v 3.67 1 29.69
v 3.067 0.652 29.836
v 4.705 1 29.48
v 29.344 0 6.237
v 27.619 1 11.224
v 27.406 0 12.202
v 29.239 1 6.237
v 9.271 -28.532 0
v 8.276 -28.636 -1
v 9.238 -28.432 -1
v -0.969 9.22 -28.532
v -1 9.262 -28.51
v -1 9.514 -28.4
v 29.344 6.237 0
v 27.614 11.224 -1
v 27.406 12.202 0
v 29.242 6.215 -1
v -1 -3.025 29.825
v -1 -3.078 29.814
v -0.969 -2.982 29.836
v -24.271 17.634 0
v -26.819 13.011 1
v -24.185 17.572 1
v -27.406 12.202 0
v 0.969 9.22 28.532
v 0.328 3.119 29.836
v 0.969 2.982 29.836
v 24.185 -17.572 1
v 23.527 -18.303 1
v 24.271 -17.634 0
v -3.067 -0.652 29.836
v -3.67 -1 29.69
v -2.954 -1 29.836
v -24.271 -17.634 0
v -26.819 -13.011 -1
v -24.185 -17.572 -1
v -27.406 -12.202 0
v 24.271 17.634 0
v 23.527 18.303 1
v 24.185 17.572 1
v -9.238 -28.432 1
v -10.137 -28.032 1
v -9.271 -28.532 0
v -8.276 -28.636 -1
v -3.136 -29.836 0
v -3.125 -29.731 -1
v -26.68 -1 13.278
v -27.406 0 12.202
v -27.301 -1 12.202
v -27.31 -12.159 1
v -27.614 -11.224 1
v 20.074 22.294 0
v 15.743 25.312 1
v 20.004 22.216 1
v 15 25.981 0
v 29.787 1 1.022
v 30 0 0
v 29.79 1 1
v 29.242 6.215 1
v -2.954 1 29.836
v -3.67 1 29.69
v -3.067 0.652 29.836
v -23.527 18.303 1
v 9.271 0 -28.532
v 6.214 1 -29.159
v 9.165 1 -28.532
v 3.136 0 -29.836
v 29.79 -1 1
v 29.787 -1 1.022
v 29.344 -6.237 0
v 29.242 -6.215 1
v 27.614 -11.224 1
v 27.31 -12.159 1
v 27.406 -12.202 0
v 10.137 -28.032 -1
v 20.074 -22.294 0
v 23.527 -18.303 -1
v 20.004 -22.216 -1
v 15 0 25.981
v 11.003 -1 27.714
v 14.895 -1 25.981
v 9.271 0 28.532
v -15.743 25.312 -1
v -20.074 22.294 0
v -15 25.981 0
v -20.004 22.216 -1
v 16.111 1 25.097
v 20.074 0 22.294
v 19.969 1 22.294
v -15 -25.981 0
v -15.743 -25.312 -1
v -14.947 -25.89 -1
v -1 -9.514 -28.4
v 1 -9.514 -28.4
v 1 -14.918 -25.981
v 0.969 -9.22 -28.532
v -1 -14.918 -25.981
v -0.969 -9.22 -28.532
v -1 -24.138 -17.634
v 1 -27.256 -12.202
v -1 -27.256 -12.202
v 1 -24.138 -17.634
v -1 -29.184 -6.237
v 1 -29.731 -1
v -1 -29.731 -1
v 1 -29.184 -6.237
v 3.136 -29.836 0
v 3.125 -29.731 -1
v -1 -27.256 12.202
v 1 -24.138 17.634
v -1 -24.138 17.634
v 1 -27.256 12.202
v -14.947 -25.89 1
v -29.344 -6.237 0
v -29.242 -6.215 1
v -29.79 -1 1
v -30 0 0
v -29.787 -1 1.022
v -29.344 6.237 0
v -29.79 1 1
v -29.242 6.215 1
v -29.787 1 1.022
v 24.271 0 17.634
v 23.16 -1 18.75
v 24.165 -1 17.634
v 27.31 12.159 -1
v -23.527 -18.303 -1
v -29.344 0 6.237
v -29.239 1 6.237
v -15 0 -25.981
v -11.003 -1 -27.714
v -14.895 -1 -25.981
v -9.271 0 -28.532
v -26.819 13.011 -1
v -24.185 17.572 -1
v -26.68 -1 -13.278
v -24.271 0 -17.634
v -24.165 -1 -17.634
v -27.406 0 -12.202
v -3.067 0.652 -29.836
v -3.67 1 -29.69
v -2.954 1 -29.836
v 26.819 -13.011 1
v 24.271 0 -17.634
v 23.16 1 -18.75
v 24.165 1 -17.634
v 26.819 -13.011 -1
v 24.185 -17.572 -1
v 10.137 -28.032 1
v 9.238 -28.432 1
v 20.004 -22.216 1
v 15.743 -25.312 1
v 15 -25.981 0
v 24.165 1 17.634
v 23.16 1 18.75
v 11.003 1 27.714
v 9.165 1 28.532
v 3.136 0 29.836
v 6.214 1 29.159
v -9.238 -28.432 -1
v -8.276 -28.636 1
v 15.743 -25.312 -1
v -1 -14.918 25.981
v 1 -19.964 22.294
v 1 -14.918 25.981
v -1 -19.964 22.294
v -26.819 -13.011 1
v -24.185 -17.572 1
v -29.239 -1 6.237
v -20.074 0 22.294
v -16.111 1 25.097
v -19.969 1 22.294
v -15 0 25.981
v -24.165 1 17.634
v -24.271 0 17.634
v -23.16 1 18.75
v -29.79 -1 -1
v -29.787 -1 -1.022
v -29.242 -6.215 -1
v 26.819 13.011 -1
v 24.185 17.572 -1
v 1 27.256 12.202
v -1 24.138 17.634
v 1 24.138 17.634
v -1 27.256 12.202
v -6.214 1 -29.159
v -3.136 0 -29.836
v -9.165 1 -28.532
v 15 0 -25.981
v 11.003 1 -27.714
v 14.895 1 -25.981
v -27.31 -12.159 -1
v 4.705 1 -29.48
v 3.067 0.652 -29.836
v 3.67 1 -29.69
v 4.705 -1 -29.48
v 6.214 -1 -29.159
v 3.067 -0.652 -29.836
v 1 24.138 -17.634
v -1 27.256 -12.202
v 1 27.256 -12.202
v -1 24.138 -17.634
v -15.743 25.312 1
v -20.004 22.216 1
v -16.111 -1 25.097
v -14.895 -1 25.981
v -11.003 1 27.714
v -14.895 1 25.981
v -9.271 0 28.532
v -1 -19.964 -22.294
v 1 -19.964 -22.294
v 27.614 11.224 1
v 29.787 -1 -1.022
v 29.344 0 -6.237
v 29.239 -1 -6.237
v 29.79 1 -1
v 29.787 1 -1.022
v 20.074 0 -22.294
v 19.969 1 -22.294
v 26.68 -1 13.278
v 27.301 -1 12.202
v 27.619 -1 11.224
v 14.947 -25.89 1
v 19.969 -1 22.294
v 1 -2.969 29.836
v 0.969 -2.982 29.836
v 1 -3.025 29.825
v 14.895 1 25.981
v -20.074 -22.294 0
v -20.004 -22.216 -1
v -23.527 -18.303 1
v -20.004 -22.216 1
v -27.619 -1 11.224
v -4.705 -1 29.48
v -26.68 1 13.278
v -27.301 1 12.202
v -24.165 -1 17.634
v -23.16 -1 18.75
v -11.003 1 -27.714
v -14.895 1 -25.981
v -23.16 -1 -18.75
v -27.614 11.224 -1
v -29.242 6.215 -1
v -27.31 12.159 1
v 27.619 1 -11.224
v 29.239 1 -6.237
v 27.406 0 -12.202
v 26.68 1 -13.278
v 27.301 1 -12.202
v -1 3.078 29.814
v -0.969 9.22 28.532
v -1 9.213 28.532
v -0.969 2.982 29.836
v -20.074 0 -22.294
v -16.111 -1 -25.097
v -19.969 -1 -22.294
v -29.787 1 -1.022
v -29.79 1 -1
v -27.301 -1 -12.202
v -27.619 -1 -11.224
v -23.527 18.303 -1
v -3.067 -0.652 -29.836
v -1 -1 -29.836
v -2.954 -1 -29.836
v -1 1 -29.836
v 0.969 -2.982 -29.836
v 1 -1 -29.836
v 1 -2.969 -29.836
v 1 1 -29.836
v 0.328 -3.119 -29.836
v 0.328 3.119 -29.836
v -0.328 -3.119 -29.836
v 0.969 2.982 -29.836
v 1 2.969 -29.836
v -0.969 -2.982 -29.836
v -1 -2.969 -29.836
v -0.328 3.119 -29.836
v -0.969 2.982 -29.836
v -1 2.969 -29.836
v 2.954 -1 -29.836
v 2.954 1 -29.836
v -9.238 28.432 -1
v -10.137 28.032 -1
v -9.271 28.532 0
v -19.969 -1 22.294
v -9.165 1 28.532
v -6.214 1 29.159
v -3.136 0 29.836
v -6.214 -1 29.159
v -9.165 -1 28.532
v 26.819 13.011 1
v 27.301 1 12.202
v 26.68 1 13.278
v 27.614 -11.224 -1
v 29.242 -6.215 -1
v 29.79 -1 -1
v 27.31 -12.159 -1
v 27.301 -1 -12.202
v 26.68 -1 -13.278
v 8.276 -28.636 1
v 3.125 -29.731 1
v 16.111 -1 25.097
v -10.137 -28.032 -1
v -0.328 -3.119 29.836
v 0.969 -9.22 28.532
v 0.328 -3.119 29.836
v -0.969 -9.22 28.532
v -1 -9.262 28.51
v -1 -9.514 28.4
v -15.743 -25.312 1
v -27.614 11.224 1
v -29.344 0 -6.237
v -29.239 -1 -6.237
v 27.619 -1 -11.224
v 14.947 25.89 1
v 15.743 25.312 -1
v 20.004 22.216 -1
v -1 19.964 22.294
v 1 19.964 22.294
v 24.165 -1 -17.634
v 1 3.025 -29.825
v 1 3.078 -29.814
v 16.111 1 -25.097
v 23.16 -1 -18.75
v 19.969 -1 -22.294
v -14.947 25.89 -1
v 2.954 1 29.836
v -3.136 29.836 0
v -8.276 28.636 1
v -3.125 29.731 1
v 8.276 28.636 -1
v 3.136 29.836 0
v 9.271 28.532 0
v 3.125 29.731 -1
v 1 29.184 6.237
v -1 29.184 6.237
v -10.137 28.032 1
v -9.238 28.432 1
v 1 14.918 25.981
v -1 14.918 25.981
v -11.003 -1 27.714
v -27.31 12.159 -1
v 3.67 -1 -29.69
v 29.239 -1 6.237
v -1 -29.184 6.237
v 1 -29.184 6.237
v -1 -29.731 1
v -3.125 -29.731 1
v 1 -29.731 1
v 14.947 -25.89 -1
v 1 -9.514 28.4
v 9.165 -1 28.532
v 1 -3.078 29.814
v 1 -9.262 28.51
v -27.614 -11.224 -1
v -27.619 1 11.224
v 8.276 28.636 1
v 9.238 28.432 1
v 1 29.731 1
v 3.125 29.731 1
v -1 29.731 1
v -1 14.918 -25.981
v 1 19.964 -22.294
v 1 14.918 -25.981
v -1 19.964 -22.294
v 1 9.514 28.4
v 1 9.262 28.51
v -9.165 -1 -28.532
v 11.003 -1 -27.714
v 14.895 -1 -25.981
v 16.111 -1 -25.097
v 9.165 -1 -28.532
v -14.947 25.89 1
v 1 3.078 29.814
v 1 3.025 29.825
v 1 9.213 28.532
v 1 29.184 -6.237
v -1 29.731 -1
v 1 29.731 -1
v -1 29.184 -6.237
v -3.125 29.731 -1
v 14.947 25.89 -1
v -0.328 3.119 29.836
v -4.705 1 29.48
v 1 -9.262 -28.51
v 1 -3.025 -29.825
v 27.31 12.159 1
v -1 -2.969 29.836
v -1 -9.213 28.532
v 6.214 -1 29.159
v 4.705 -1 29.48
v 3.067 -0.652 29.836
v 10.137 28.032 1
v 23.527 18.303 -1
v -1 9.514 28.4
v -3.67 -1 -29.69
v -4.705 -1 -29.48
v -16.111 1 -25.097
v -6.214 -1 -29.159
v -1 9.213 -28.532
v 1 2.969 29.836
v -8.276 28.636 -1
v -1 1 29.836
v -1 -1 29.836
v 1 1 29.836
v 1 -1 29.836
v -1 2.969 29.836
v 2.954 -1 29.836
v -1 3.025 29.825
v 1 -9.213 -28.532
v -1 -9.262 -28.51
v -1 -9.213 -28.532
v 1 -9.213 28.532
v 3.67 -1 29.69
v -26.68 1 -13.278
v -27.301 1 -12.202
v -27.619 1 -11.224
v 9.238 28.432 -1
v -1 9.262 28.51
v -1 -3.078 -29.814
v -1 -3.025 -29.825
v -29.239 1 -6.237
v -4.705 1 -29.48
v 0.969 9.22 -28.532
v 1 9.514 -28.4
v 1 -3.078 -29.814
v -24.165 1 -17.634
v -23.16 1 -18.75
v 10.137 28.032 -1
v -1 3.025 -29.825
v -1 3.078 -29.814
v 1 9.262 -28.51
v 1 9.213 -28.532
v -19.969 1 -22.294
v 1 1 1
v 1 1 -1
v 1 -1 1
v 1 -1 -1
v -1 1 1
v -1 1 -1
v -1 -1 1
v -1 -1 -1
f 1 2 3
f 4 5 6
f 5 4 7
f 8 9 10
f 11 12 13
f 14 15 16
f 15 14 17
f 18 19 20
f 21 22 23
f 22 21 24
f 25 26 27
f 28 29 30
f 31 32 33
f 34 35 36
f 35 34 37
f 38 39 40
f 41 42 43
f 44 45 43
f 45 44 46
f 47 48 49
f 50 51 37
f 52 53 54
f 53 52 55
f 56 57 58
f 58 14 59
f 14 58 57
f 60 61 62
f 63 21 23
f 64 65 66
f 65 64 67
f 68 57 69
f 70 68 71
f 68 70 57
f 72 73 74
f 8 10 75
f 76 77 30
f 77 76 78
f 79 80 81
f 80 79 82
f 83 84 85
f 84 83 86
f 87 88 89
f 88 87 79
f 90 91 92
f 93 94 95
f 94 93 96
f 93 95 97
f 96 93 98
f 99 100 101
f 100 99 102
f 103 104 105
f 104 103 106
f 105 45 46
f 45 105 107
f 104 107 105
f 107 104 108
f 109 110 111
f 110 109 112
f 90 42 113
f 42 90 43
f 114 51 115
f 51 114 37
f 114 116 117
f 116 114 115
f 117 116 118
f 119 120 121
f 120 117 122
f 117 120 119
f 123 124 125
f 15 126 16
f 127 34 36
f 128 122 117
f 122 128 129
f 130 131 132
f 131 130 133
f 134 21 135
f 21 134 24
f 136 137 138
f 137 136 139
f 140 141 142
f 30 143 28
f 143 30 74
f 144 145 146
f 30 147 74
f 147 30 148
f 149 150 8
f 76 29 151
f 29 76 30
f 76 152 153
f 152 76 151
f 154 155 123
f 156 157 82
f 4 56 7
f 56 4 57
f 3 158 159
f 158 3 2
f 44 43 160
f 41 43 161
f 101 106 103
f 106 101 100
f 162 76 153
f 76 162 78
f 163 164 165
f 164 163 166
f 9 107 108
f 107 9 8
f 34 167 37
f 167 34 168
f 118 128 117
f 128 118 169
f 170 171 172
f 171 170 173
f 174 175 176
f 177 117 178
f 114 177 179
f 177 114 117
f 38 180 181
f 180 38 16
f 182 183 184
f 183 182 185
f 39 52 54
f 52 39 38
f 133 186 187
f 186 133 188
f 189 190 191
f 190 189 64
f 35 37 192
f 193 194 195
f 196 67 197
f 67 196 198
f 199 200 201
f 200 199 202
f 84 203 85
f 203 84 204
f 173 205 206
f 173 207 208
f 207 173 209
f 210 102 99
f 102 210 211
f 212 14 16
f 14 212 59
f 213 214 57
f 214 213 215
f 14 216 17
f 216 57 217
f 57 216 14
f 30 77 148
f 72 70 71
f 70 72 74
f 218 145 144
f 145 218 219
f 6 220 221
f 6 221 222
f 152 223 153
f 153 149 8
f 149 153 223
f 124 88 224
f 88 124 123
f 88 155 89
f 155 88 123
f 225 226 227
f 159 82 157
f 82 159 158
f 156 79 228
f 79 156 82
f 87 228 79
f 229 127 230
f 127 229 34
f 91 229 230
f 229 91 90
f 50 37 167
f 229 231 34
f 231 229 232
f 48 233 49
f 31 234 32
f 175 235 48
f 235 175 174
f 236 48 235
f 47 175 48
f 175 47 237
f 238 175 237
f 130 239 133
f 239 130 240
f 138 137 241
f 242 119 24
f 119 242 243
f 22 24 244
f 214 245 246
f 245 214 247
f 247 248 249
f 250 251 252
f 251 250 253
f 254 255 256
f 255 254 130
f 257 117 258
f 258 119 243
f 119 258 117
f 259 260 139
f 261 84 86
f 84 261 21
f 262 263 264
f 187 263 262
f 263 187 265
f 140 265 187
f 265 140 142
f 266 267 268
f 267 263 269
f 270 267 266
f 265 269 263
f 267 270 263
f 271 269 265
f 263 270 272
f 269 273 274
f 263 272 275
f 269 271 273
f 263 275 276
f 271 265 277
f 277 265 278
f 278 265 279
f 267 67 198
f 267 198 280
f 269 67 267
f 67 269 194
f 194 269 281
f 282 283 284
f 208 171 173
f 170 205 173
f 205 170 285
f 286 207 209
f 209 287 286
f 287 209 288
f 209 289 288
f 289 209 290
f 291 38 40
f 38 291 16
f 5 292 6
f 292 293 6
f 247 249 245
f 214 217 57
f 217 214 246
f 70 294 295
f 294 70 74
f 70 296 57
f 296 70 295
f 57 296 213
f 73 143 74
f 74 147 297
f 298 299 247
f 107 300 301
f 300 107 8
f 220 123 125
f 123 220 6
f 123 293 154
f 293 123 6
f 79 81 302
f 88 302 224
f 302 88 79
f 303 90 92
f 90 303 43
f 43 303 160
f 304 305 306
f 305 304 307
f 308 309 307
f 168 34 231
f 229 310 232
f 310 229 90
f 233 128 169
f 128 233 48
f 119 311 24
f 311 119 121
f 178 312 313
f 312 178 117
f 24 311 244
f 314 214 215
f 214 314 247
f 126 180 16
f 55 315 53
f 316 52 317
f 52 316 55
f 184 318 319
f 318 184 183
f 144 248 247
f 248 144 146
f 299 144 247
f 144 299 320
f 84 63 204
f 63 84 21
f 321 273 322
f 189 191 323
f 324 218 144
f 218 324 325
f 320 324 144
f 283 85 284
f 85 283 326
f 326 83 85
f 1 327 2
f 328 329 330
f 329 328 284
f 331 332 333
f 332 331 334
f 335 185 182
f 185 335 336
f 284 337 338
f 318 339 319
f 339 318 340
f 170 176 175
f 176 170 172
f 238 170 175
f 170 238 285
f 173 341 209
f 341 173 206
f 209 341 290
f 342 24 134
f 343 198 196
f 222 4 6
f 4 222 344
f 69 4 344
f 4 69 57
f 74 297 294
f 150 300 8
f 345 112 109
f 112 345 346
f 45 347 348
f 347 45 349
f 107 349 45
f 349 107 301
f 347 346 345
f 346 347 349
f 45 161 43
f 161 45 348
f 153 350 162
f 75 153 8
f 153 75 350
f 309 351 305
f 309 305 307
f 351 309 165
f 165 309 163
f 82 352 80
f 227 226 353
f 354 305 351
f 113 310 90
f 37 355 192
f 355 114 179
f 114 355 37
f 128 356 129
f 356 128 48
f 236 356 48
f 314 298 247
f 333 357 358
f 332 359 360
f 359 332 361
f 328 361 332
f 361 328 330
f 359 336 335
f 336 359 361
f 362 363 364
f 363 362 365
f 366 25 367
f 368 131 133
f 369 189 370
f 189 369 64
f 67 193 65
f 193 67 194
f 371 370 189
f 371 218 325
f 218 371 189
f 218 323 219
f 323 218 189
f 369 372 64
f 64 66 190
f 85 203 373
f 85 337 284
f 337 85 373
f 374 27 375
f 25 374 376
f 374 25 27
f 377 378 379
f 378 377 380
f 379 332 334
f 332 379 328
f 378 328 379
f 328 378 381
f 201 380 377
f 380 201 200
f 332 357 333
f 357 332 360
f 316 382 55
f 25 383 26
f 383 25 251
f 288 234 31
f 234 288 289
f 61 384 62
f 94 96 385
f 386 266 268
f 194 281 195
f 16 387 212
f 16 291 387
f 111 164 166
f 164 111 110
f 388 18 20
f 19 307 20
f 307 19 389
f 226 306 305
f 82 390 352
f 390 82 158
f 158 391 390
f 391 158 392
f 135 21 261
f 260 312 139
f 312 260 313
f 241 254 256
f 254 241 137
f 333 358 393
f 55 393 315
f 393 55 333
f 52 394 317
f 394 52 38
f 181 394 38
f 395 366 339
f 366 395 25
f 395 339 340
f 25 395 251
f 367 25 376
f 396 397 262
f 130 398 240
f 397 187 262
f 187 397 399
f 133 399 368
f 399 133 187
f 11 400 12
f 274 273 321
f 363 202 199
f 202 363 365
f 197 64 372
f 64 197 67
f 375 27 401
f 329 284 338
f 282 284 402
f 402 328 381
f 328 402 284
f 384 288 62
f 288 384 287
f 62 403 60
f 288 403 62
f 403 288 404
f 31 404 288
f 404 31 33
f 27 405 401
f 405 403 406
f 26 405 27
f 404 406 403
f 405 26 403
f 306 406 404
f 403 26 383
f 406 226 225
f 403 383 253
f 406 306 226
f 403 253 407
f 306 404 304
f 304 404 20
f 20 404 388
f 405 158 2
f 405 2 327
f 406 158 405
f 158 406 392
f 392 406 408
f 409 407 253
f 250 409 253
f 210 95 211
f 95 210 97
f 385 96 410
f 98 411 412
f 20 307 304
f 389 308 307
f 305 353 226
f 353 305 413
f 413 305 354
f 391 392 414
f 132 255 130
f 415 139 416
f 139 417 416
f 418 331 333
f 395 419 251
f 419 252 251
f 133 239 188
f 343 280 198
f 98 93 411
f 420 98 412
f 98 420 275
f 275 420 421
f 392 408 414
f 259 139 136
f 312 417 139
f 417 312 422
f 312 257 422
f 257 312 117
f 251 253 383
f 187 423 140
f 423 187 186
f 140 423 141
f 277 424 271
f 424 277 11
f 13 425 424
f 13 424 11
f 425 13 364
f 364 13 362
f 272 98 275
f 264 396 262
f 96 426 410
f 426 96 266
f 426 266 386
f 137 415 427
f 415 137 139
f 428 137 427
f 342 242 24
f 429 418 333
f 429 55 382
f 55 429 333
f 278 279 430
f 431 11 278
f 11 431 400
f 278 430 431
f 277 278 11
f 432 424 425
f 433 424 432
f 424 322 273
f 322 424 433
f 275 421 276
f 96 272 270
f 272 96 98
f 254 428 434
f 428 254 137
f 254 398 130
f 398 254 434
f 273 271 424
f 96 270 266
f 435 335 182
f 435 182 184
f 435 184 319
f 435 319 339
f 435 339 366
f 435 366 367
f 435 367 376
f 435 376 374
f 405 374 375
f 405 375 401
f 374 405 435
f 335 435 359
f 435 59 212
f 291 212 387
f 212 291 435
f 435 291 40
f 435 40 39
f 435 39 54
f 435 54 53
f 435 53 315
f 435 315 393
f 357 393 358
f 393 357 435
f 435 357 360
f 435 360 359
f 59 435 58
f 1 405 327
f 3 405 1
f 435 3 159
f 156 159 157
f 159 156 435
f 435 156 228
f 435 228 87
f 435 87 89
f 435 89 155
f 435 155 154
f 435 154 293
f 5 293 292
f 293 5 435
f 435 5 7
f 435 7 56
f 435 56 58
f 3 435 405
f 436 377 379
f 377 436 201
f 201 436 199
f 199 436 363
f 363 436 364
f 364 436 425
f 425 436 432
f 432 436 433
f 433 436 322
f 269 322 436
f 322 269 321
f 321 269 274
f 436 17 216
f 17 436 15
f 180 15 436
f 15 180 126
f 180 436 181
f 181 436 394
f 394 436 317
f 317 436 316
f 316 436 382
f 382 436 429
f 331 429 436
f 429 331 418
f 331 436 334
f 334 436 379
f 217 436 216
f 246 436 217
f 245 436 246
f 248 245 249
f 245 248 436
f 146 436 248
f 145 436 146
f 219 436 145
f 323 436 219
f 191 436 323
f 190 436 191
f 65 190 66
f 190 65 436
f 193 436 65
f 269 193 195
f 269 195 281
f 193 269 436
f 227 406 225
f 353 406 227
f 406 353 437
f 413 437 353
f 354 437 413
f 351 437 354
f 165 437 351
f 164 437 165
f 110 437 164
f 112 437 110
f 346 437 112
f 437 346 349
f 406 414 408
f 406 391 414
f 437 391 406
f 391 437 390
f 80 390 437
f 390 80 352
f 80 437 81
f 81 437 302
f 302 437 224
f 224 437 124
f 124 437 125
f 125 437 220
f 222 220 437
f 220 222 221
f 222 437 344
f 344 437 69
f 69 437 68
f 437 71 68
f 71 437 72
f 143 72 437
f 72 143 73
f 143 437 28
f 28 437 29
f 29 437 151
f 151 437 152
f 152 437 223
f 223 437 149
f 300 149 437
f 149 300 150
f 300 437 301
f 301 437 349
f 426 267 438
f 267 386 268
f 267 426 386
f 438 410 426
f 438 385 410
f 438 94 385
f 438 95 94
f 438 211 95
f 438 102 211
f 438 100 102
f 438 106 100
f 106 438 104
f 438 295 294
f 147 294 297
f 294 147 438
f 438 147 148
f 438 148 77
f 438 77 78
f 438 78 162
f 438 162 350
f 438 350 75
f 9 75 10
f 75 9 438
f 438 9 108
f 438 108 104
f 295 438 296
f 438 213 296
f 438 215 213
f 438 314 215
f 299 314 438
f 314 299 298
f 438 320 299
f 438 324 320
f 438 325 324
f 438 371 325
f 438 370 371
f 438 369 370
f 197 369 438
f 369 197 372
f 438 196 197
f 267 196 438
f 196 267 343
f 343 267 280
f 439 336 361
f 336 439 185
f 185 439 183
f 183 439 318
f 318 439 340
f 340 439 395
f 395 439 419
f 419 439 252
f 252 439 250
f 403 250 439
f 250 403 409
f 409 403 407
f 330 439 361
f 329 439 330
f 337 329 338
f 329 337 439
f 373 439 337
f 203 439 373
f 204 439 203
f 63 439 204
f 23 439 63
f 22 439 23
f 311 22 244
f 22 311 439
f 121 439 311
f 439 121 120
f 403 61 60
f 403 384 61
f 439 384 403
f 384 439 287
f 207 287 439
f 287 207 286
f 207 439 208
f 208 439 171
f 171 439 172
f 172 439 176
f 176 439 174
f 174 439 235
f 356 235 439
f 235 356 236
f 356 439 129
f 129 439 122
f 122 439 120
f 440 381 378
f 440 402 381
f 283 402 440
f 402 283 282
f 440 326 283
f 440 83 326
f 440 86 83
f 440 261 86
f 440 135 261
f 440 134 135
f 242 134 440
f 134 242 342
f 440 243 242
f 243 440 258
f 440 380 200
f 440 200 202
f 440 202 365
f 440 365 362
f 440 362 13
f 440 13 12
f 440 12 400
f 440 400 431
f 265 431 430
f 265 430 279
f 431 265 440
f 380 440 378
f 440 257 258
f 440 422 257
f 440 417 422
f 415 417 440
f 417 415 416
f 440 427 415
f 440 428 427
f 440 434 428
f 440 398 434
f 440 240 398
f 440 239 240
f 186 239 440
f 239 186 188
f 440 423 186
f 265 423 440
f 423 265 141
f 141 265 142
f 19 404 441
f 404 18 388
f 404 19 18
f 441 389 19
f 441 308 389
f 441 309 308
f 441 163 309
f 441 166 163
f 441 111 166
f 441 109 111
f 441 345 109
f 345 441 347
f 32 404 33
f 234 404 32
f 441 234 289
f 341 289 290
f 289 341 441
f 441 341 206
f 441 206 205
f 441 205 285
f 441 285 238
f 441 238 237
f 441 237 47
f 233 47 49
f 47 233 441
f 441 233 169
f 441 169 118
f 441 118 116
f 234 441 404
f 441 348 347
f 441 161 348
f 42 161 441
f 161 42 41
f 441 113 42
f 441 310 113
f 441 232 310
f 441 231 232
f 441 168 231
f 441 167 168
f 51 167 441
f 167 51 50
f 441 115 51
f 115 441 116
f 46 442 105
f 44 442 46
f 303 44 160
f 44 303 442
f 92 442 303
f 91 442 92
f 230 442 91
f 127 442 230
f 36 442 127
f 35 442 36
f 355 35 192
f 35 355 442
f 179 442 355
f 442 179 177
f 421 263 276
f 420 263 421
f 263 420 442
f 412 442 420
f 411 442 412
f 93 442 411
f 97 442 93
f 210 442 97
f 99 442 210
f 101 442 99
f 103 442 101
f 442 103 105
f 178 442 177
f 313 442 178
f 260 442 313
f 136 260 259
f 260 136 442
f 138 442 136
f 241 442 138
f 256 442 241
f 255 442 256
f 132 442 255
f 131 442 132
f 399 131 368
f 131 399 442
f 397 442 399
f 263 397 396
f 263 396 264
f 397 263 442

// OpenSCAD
difference() {
    sphere(30);
    translate([16,16,16]) cube(30, center=true);
    translate([16,16,-16]) cube(30, center=true);
    translate([16,-16,16]) cube(30, center=true);
    translate([16,-16,-16]) cube(30, center=true);
    translate([-16,16,16]) cube(30, center=true);
    translate([-16,16,-16]) cube(30, center=true);
    translate([-16,-16,16]) cube(30, center=true);
    translate([-16,-16,-16]) cube(30, center=true);
}
